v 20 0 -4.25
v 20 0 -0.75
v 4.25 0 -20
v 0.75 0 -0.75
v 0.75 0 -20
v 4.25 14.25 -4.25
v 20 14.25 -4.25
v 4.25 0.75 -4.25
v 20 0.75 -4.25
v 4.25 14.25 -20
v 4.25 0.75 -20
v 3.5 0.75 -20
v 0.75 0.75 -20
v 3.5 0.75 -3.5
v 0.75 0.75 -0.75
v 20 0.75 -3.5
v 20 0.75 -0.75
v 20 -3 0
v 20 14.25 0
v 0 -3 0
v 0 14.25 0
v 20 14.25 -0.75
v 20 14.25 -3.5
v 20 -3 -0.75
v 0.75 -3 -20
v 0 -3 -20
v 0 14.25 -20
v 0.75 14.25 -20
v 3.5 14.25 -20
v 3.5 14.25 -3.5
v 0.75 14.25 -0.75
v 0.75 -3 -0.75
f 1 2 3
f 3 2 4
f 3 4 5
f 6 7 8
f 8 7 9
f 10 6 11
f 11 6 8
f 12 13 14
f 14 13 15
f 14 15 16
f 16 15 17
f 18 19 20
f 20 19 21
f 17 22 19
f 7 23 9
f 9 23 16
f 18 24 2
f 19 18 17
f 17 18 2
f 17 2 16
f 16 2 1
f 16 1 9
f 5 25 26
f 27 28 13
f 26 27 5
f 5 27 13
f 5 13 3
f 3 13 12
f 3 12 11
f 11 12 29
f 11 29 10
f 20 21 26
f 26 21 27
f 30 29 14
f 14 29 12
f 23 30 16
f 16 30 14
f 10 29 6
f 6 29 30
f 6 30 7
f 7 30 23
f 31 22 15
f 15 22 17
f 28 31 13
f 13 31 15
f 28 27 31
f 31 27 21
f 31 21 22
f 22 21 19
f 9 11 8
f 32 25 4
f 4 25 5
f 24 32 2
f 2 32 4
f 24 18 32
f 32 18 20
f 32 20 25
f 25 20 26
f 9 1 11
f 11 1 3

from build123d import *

# Parameters (mm, degrees)
BOSS_EXTRUDE1_DEPTH = 0.75
BOSS_EXTRUDE2_DEPTH = 13.5
SKETCH4_W           = 20
SKETCH4_H           = 20
BOSS_EXTRUDE3_DEPTH = 0.75
BOSS_EXTRUDE7_DEPTH = 3
CUT_EXTRUDE1_DEPTH  = 32.340867888


with BuildPart() as part:
    # Sketch1 → Boss-Extrude1 (new body)
    with BuildSketch(Plane(origin=(0, 0, 0), x_dir=(1, 0, 0), z_dir=(0, 1, 0))):
        Polygon((0, 0), (0, 20), (4.25, 20), (4.25, 4.25), (20, 4.25), (20, 0), align=None)
    extrude(amount=BOSS_EXTRUDE1_DEPTH)

    # Sketch2 → Boss-Extrude2 (add)
    with BuildSketch(Plane(origin=(0, 0.75, 0), x_dir=(1, 0, 0), z_dir=(0, 1, 0))):
        Polygon((20, 3.5), (20, 4.25), (4.25, 4.25), (4.25, 20), (3.5, 20), (3.5, 3.5), align=None)
        Polygon((0.75, 20), (0, 20), (0, 0), (20, 0), (20, 0.75), (0.75, 0.75), align=None)
    extrude(amount=BOSS_EXTRUDE2_DEPTH)

    # Sketch4 → Boss-Extrude3 (add)
    with BuildSketch(Plane.XZ):
        with Locations((10, -10)):
            Rectangle(SKETCH4_W, SKETCH4_H)
    extrude(amount=-BOSS_EXTRUDE3_DEPTH)

    # Sketch7 → Boss-Extrude7 (add)
    with BuildSketch(Plane.XZ):
        Polygon((0, 0), (0, -20), (0.75, -20), (0.75, -0.75), (20, -0.75), (20, 0), align=None)
    extrude(amount=BOSS_EXTRUDE7_DEPTH)

    # Sketch8 → Cut-Extrude1 (cut, through all)
    with BuildSketch(Plane(origin=(0, 0.75, 0), x_dir=(1, 0, 0), z_dir=(0, 1, 0))):
        Polygon((20, 4.25), (20, 20), (4.25, 20), align=None)
    extrude(amount=-CUT_EXTRUDE1_DEPTH, mode=Mode.SUBTRACT)


solid = part.part
